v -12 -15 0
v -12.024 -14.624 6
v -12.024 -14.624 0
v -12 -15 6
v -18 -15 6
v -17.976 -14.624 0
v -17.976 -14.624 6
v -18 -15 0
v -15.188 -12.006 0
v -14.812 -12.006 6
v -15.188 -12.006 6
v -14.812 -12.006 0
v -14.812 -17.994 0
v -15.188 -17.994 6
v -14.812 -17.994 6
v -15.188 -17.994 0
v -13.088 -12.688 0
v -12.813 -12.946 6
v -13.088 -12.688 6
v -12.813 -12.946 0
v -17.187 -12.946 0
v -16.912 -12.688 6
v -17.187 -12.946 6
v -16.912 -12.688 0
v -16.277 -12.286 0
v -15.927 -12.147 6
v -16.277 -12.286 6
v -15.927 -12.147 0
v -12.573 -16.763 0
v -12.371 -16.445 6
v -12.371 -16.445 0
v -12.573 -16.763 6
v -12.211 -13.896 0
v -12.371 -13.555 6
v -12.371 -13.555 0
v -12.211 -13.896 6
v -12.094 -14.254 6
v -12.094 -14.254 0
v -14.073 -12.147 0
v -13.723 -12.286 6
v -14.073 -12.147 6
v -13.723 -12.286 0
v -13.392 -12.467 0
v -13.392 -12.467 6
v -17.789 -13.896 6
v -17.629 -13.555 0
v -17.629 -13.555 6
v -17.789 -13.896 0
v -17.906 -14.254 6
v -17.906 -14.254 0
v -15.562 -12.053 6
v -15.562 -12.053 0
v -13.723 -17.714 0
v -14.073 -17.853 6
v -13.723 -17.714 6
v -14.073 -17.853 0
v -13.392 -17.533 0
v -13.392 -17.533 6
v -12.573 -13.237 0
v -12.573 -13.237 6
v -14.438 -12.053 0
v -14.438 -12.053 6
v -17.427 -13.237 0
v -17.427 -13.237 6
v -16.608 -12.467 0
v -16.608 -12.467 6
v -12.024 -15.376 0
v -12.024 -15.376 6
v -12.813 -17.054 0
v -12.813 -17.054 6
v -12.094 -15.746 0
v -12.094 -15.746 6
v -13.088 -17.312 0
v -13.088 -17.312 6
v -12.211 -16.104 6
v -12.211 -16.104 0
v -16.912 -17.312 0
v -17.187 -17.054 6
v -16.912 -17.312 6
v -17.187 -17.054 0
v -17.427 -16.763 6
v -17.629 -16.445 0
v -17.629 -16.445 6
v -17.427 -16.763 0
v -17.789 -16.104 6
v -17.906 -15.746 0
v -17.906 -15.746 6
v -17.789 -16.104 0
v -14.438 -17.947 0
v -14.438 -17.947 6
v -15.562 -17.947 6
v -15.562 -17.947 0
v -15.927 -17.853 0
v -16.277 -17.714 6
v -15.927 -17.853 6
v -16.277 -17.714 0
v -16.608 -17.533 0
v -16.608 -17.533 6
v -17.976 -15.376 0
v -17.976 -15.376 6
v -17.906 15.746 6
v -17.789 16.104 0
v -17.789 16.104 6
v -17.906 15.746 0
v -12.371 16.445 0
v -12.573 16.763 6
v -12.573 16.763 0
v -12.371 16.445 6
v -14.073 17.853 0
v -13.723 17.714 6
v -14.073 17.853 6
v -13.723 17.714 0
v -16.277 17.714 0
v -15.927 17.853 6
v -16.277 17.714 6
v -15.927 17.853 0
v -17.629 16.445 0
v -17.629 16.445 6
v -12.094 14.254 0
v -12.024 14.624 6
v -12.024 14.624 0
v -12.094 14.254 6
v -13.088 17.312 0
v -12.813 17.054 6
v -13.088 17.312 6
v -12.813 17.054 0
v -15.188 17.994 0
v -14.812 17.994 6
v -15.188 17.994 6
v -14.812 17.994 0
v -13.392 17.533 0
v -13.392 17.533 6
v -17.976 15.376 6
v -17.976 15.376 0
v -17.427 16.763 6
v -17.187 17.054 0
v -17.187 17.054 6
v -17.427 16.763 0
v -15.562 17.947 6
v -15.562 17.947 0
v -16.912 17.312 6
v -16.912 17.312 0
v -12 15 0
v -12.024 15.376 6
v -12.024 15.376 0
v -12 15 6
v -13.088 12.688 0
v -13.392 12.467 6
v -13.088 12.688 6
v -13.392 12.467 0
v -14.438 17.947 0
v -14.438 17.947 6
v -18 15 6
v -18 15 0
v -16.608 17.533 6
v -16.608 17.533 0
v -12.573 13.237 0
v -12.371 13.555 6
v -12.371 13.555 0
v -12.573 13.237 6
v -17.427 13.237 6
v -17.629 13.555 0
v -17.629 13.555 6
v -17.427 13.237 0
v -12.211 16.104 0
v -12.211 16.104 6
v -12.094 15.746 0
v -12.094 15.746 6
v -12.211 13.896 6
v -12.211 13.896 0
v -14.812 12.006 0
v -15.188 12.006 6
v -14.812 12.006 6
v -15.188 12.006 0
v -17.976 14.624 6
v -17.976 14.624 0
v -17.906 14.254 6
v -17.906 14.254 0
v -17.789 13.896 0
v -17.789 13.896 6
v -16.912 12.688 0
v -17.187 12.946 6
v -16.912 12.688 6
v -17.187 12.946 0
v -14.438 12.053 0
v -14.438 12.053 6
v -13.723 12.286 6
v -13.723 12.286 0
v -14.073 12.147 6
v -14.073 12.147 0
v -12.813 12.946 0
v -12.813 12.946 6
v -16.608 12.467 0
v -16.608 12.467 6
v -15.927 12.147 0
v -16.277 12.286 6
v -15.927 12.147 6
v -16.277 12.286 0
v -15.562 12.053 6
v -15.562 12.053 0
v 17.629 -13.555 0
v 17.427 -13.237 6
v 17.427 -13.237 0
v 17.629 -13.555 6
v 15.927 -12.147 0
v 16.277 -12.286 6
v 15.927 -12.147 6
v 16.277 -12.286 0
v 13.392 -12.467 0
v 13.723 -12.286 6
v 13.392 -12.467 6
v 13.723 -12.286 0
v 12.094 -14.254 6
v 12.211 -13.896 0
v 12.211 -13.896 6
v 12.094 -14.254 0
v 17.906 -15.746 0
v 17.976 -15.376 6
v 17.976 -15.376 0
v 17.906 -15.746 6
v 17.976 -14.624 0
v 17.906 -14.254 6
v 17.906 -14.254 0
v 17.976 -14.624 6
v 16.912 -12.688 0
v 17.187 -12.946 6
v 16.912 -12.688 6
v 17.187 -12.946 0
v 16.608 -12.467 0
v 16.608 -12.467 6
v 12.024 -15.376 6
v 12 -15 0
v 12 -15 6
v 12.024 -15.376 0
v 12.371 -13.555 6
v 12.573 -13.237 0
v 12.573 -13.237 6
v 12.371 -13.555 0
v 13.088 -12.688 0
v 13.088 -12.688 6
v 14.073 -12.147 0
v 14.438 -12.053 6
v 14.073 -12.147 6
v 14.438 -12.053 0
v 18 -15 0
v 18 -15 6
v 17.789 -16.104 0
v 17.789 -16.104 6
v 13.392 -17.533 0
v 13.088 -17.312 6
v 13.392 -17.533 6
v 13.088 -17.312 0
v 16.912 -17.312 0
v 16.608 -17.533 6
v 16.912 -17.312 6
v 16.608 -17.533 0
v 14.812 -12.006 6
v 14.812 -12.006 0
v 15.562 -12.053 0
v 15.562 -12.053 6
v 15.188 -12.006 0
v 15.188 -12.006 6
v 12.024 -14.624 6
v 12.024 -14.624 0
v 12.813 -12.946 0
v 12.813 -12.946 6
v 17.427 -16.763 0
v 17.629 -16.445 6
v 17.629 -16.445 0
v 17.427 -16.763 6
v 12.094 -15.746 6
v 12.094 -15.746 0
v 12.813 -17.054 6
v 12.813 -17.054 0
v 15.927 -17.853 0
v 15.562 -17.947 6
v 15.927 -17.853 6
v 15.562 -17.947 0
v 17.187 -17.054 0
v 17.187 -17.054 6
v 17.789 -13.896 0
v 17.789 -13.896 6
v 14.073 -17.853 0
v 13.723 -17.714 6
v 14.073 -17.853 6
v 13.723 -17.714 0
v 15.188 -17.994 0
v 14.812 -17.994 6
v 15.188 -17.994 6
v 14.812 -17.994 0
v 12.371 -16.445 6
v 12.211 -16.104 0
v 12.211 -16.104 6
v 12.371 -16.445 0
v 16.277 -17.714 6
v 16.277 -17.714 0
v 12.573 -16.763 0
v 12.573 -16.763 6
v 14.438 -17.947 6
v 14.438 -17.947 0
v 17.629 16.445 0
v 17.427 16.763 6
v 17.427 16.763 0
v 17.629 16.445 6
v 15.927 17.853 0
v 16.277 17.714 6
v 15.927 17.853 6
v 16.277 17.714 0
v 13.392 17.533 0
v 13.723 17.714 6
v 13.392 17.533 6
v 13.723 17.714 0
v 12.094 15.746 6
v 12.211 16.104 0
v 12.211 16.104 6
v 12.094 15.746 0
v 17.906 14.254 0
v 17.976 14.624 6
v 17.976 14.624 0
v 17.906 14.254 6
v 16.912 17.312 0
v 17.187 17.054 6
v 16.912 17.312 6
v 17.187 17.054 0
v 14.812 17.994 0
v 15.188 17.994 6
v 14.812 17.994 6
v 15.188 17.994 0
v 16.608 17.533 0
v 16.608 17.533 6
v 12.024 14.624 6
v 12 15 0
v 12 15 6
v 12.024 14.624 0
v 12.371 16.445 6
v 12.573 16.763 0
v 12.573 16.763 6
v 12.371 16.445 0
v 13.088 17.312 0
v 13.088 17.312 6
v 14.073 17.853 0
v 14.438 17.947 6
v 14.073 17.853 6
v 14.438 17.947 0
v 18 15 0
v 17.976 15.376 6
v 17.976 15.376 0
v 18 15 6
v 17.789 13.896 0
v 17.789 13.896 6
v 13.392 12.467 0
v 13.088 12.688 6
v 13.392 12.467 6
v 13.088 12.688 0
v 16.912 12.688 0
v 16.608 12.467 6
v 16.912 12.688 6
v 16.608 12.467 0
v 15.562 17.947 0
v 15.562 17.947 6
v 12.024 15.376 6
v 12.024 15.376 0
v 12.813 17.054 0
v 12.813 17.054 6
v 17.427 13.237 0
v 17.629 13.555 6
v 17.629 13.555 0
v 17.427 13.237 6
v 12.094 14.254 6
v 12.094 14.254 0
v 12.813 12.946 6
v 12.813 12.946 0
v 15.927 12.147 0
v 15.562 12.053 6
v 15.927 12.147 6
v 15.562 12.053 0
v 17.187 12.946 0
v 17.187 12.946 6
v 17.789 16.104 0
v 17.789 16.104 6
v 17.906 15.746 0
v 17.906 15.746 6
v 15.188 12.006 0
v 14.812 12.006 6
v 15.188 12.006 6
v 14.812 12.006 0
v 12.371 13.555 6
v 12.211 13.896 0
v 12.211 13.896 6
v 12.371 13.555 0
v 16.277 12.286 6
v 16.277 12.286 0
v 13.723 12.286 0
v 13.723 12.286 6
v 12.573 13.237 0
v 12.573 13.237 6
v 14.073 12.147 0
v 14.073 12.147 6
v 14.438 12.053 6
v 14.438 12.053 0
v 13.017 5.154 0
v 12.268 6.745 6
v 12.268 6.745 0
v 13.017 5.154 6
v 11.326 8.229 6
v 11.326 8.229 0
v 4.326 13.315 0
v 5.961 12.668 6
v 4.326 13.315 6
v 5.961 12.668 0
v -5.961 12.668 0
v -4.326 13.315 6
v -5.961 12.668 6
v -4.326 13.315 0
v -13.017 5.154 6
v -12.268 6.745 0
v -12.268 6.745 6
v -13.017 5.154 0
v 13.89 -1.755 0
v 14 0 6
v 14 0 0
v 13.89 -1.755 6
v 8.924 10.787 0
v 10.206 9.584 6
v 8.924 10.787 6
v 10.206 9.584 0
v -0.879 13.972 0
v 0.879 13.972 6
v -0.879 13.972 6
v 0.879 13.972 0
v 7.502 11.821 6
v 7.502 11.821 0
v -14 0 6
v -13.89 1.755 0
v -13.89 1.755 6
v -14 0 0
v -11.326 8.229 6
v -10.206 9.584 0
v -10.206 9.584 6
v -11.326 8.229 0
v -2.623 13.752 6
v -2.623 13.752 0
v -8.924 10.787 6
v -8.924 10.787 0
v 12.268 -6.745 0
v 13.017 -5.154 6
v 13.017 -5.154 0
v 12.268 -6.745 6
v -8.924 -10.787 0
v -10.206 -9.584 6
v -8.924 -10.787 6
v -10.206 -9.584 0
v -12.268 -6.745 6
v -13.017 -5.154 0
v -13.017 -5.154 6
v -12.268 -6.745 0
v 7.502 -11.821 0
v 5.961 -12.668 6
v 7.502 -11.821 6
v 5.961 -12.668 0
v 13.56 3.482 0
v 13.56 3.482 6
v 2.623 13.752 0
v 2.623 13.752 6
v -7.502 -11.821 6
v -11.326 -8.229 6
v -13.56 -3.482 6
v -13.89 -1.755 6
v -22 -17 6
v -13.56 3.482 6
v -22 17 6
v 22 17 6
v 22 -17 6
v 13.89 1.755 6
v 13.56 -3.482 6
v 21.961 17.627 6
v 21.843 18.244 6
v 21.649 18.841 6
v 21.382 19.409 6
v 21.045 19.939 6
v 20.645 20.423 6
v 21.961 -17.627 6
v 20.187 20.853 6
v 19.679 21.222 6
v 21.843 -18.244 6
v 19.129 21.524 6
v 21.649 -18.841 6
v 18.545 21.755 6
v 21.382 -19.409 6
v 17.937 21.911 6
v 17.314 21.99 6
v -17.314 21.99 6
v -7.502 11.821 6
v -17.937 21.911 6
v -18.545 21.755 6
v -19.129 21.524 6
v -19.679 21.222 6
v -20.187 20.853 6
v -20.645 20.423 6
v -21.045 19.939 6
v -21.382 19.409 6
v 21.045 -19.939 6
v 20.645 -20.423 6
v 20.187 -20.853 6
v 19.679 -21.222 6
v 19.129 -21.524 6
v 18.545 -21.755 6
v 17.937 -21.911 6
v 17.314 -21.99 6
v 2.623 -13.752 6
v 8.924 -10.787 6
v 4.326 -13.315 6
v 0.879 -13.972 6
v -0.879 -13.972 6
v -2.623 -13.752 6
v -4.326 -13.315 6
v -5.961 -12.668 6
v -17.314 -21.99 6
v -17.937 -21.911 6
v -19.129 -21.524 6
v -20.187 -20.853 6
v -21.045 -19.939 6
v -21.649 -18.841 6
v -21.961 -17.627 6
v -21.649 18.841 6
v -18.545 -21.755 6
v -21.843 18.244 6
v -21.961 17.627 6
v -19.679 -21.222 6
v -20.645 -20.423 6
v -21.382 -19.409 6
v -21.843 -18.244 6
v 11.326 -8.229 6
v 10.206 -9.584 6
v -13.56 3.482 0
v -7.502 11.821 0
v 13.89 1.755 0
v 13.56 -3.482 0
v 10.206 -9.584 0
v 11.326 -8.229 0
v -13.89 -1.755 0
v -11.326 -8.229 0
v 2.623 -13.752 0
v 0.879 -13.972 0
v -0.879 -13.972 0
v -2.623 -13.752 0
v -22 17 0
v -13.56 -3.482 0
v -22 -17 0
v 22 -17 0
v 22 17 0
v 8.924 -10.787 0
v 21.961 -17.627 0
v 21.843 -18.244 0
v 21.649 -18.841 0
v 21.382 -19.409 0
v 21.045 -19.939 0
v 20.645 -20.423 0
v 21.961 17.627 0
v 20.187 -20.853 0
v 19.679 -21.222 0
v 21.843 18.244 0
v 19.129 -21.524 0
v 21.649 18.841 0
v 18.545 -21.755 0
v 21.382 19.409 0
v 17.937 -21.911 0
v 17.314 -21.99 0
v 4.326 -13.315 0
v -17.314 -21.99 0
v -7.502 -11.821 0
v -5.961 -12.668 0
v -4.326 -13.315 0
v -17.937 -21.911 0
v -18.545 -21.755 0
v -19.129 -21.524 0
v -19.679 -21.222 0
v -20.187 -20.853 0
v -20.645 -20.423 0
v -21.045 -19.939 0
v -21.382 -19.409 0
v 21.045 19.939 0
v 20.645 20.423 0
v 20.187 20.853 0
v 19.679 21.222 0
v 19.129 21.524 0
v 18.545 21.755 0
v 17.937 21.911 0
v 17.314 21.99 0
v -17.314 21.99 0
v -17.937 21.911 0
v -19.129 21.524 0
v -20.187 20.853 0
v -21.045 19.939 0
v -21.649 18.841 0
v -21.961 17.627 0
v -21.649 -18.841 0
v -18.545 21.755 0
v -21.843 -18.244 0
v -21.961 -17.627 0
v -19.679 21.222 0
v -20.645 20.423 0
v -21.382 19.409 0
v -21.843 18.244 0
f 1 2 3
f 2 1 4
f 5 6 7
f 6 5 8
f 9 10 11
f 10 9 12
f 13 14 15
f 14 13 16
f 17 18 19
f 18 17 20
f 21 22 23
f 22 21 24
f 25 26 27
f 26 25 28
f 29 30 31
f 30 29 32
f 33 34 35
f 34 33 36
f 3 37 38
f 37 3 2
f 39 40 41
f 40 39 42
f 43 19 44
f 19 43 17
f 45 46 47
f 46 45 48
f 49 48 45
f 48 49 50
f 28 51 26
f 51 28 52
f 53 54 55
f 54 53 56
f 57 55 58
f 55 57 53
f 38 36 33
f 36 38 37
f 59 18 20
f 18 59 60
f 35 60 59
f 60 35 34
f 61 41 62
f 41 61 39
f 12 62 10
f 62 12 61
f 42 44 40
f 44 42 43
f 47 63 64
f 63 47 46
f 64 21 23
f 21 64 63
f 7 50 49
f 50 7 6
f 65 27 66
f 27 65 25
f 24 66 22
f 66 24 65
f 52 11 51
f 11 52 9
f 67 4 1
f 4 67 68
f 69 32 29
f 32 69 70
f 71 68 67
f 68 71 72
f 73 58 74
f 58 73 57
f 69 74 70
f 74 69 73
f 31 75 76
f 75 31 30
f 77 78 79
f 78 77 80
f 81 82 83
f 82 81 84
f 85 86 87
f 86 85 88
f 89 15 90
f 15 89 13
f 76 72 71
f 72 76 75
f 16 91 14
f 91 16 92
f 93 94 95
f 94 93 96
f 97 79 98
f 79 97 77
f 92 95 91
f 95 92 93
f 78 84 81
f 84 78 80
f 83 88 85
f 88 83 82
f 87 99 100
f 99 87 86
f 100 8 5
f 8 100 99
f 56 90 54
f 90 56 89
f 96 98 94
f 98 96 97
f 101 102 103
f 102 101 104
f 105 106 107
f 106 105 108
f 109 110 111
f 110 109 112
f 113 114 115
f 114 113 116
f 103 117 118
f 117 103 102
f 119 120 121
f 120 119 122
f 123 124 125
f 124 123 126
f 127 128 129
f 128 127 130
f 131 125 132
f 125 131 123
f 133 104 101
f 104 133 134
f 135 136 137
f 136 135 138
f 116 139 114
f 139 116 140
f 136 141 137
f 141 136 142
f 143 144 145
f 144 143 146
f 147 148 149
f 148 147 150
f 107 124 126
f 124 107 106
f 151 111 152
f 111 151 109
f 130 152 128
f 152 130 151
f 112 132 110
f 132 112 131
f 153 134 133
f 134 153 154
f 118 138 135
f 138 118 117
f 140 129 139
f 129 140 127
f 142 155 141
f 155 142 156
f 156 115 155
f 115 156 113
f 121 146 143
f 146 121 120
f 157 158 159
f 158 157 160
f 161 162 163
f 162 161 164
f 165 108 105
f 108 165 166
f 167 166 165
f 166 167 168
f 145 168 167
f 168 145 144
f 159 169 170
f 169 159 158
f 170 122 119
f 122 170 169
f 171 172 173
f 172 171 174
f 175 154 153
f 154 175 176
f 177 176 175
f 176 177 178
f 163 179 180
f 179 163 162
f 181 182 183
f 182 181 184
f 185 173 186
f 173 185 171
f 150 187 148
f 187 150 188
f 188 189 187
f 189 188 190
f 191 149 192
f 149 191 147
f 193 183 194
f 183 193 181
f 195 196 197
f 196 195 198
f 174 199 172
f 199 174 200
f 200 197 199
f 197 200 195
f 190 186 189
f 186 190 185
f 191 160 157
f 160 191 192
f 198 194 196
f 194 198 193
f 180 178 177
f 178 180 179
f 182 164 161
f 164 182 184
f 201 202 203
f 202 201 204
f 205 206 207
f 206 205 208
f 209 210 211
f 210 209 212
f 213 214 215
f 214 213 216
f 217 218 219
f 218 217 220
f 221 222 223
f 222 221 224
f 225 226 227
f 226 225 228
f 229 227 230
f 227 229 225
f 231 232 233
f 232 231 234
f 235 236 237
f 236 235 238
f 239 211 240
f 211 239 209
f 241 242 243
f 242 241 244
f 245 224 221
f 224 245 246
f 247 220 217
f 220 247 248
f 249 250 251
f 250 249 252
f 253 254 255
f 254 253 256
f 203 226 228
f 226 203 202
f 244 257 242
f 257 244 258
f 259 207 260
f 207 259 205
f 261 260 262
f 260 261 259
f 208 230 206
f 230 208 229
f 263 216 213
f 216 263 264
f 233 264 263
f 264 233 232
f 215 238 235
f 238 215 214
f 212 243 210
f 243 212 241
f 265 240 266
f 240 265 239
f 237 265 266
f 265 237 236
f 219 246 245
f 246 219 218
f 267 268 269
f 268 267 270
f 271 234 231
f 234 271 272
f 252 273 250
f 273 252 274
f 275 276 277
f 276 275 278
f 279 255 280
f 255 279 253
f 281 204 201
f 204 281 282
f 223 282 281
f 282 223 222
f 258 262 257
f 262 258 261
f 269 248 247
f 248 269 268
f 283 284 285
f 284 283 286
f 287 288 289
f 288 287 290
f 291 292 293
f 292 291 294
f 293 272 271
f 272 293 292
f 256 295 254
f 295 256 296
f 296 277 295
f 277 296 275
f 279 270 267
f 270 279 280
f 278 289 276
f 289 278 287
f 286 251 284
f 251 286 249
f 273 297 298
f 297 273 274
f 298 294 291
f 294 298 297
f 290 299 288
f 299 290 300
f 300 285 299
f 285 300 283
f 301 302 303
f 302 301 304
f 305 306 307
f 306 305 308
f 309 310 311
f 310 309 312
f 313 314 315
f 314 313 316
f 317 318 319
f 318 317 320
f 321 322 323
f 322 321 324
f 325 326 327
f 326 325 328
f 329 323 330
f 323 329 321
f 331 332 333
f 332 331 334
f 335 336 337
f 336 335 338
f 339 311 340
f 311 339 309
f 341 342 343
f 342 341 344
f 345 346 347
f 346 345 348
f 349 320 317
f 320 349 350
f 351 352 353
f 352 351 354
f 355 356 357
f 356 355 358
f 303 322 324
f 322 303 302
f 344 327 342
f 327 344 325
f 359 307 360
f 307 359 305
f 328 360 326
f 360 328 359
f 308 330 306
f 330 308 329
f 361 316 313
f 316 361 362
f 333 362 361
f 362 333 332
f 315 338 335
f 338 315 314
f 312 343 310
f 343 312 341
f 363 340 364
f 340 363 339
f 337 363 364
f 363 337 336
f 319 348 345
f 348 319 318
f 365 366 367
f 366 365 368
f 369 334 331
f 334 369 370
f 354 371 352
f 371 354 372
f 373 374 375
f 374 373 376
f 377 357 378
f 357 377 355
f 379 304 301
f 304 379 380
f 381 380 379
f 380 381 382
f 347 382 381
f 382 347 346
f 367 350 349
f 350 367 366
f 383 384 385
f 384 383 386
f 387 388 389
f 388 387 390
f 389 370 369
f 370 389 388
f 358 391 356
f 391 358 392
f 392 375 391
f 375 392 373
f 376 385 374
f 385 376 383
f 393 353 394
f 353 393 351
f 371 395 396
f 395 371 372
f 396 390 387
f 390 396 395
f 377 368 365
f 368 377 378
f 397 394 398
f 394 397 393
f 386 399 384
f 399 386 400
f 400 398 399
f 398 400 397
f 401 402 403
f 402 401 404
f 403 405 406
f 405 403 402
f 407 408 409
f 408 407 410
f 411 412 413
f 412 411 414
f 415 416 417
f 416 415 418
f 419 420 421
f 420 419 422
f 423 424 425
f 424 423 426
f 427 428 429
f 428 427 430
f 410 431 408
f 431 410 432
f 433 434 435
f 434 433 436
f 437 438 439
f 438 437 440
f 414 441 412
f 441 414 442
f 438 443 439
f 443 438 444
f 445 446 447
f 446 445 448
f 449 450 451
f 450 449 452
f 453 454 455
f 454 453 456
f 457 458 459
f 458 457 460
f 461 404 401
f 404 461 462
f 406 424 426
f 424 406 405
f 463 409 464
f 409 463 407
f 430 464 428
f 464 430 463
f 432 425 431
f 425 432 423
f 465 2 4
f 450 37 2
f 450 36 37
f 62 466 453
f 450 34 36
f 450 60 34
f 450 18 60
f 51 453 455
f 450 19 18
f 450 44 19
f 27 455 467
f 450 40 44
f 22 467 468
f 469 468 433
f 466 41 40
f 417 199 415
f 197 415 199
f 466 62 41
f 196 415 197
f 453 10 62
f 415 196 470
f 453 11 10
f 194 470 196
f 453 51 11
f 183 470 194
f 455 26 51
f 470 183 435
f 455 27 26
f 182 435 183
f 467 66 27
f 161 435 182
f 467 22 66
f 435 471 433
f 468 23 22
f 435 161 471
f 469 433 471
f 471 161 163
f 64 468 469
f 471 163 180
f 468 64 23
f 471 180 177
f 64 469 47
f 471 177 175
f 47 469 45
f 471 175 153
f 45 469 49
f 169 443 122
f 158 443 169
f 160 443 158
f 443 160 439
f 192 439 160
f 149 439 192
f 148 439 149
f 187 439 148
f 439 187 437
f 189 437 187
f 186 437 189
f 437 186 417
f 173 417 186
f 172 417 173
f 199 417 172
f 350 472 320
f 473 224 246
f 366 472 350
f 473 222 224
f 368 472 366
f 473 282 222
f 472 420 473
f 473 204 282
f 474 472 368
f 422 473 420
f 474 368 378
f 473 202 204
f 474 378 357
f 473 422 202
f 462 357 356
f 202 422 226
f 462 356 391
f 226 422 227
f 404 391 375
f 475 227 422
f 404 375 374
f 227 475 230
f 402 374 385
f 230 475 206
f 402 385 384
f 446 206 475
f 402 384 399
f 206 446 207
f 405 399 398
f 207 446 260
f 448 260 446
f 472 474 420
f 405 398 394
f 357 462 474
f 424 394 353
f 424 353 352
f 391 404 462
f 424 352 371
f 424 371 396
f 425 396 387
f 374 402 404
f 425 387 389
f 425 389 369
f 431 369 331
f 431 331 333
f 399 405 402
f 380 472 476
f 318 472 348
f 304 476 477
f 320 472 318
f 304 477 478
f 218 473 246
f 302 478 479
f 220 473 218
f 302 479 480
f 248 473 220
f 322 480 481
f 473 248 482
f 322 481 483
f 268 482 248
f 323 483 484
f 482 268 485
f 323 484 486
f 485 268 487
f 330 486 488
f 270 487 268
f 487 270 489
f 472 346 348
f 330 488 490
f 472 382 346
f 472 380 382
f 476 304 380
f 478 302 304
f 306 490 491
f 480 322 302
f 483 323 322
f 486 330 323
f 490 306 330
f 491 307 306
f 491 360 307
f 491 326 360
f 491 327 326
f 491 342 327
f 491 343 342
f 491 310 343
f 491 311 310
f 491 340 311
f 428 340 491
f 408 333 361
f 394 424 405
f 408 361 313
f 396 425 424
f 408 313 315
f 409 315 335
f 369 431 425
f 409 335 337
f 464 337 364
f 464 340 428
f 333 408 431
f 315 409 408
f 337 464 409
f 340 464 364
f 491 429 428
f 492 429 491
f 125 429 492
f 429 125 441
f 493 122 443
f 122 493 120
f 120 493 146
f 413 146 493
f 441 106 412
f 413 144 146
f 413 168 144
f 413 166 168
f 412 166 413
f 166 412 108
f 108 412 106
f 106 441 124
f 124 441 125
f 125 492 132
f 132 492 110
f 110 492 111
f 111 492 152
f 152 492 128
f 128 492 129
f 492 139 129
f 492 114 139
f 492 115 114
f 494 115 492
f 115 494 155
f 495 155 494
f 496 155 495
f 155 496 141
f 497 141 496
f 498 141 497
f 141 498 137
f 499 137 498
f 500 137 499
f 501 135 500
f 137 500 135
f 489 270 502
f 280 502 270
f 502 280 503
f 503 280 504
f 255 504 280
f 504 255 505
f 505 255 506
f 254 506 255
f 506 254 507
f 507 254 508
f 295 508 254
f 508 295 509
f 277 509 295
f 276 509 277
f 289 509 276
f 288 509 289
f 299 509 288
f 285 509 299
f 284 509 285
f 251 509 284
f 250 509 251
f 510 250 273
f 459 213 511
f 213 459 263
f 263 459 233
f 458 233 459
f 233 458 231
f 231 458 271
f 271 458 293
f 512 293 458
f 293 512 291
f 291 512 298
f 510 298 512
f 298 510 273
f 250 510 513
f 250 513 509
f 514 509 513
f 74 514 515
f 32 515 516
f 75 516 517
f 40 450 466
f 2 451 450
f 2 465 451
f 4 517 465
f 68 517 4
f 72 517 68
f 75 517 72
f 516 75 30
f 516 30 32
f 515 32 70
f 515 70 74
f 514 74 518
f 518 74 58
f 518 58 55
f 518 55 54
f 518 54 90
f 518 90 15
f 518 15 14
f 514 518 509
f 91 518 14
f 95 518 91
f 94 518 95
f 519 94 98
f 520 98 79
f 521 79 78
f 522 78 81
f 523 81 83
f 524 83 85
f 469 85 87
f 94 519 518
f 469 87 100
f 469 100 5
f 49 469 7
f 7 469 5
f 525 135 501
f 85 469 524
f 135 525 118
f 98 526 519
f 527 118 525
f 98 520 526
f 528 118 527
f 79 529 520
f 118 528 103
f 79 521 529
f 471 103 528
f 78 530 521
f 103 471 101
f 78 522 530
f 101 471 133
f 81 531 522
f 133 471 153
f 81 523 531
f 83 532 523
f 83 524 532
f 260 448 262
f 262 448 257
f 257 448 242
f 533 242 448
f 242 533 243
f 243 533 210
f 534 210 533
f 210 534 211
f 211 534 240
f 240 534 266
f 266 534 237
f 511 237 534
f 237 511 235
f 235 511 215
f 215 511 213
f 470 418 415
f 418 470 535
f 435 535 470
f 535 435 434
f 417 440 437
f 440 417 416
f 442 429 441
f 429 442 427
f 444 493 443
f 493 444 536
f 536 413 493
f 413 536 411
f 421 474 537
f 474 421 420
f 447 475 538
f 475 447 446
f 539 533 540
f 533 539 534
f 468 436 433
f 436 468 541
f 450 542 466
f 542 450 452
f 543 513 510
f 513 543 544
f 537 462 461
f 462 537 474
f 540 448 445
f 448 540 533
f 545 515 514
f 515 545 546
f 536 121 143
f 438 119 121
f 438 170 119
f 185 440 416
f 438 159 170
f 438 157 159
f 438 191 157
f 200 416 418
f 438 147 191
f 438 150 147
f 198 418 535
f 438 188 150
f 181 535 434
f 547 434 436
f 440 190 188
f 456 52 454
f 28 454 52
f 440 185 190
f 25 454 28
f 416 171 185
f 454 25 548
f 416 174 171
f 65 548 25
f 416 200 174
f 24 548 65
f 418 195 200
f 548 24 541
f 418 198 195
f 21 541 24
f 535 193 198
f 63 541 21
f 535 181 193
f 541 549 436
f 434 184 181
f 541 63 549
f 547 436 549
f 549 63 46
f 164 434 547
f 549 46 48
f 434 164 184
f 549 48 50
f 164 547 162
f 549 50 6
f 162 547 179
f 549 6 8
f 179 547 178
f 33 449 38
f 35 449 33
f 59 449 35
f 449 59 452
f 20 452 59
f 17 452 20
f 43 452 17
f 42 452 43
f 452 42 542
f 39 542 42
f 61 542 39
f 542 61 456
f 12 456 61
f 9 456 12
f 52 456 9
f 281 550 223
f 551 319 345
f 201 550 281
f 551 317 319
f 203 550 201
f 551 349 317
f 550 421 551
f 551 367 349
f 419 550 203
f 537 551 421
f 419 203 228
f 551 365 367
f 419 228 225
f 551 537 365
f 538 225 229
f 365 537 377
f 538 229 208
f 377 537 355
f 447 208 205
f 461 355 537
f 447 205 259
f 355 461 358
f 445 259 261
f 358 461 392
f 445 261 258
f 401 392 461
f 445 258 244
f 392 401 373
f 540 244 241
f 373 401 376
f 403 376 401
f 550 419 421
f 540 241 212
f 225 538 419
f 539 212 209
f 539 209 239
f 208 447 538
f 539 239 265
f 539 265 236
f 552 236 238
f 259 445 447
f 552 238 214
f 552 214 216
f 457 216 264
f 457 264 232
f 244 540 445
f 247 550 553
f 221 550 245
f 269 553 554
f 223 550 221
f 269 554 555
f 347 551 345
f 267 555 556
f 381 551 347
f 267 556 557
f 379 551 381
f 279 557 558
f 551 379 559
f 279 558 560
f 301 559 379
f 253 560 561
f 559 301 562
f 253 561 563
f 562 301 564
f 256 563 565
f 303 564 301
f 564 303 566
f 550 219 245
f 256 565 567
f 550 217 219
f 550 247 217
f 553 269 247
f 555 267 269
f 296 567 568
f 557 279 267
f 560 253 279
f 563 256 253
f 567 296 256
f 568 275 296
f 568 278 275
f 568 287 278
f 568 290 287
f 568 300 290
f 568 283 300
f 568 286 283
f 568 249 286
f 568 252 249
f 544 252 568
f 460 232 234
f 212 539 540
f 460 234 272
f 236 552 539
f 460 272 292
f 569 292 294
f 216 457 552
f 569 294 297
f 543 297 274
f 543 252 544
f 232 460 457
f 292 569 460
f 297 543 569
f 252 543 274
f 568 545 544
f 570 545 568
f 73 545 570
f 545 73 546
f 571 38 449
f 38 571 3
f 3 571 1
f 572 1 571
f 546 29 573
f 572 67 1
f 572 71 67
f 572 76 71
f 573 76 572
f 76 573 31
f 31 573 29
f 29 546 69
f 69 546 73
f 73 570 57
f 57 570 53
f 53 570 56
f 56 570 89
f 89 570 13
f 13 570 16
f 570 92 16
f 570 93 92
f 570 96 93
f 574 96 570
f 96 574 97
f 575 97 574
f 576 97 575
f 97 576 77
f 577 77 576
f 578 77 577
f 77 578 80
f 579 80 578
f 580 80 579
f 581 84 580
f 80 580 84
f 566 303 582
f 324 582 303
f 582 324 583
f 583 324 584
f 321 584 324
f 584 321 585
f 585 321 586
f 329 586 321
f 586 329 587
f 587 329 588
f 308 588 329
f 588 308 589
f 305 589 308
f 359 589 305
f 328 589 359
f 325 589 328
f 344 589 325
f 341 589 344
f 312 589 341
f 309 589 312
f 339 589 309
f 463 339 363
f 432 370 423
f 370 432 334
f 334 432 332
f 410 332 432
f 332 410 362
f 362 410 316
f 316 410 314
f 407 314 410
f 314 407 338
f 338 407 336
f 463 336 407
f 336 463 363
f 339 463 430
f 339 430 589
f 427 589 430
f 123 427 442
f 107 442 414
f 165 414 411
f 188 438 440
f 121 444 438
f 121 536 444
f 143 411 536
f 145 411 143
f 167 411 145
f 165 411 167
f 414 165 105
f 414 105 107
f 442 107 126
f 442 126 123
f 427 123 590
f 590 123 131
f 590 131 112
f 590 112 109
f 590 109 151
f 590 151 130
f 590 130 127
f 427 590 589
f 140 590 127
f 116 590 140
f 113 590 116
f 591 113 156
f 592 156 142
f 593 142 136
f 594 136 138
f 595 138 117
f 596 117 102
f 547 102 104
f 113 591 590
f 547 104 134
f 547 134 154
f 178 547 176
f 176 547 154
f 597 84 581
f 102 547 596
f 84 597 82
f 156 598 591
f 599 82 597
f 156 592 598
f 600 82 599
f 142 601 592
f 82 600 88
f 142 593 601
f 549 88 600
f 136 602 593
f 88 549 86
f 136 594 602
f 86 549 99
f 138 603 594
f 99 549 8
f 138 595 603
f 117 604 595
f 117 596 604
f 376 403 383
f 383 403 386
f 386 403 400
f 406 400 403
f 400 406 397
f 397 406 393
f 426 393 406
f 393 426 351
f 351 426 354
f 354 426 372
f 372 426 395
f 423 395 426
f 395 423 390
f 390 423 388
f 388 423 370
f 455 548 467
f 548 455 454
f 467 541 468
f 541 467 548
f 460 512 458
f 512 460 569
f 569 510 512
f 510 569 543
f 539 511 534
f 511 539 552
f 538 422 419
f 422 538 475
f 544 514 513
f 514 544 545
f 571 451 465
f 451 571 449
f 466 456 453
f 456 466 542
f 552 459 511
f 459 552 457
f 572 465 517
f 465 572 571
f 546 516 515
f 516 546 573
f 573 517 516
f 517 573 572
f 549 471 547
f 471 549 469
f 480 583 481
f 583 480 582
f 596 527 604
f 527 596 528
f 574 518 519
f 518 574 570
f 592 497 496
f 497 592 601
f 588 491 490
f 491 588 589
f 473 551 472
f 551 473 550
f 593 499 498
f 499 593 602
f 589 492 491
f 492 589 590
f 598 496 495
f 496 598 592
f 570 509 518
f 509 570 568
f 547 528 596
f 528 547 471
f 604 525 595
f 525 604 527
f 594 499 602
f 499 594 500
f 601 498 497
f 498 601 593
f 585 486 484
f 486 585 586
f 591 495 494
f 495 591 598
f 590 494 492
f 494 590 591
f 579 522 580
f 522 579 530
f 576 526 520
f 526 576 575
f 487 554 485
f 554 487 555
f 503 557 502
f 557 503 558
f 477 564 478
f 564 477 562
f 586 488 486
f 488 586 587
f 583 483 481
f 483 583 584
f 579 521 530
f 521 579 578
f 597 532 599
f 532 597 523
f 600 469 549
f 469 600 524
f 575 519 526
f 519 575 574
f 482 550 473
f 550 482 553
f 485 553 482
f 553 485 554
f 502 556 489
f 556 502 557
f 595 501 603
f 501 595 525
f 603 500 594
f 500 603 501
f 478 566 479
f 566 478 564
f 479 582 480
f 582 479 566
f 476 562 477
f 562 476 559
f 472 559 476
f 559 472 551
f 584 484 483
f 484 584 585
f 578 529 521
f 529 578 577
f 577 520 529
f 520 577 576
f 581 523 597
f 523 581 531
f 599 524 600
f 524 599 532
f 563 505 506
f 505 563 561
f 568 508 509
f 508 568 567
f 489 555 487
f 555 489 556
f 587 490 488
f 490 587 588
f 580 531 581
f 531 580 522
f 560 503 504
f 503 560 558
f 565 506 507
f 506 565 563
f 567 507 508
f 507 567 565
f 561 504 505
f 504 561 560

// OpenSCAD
$fn = 50;


difference() {
	union() {
		hull() {
			translate(v = [-17.0000000000, 17.0000000000, 0]) {
				cylinder(h = 6, r = 5);
			}
			translate(v = [17.0000000000, 17.0000000000, 0]) {
				cylinder(h = 6, r = 5);
			}
			translate(v = [-17.0000000000, -17.0000000000, 0]) {
				cylinder(h = 6, r = 5);
			}
			translate(v = [17.0000000000, -17.0000000000, 0]) {
				cylinder(h = 6, r = 5);
			}
		}
	}
	union() {
		#translate(v = [-15.0000000000, -15.0000000000, -100.0000000000]) {
			cylinder(h = 200, r = 3.0000000000);
		}
		#translate(v = [-15.0000000000, 15.0000000000, -100.0000000000]) {
			cylinder(h = 200, r = 3.0000000000);
		}
		#translate(v = [15.0000000000, -15.0000000000, -100.0000000000]) {
			cylinder(h = 200, r = 3.0000000000);
		}
		#translate(v = [15.0000000000, 15.0000000000, -100.0000000000]) {
			cylinder(h = 200, r = 3.0000000000);
		}
		#cylinder(h = 6, r = 14.0000000000);
	}
}
